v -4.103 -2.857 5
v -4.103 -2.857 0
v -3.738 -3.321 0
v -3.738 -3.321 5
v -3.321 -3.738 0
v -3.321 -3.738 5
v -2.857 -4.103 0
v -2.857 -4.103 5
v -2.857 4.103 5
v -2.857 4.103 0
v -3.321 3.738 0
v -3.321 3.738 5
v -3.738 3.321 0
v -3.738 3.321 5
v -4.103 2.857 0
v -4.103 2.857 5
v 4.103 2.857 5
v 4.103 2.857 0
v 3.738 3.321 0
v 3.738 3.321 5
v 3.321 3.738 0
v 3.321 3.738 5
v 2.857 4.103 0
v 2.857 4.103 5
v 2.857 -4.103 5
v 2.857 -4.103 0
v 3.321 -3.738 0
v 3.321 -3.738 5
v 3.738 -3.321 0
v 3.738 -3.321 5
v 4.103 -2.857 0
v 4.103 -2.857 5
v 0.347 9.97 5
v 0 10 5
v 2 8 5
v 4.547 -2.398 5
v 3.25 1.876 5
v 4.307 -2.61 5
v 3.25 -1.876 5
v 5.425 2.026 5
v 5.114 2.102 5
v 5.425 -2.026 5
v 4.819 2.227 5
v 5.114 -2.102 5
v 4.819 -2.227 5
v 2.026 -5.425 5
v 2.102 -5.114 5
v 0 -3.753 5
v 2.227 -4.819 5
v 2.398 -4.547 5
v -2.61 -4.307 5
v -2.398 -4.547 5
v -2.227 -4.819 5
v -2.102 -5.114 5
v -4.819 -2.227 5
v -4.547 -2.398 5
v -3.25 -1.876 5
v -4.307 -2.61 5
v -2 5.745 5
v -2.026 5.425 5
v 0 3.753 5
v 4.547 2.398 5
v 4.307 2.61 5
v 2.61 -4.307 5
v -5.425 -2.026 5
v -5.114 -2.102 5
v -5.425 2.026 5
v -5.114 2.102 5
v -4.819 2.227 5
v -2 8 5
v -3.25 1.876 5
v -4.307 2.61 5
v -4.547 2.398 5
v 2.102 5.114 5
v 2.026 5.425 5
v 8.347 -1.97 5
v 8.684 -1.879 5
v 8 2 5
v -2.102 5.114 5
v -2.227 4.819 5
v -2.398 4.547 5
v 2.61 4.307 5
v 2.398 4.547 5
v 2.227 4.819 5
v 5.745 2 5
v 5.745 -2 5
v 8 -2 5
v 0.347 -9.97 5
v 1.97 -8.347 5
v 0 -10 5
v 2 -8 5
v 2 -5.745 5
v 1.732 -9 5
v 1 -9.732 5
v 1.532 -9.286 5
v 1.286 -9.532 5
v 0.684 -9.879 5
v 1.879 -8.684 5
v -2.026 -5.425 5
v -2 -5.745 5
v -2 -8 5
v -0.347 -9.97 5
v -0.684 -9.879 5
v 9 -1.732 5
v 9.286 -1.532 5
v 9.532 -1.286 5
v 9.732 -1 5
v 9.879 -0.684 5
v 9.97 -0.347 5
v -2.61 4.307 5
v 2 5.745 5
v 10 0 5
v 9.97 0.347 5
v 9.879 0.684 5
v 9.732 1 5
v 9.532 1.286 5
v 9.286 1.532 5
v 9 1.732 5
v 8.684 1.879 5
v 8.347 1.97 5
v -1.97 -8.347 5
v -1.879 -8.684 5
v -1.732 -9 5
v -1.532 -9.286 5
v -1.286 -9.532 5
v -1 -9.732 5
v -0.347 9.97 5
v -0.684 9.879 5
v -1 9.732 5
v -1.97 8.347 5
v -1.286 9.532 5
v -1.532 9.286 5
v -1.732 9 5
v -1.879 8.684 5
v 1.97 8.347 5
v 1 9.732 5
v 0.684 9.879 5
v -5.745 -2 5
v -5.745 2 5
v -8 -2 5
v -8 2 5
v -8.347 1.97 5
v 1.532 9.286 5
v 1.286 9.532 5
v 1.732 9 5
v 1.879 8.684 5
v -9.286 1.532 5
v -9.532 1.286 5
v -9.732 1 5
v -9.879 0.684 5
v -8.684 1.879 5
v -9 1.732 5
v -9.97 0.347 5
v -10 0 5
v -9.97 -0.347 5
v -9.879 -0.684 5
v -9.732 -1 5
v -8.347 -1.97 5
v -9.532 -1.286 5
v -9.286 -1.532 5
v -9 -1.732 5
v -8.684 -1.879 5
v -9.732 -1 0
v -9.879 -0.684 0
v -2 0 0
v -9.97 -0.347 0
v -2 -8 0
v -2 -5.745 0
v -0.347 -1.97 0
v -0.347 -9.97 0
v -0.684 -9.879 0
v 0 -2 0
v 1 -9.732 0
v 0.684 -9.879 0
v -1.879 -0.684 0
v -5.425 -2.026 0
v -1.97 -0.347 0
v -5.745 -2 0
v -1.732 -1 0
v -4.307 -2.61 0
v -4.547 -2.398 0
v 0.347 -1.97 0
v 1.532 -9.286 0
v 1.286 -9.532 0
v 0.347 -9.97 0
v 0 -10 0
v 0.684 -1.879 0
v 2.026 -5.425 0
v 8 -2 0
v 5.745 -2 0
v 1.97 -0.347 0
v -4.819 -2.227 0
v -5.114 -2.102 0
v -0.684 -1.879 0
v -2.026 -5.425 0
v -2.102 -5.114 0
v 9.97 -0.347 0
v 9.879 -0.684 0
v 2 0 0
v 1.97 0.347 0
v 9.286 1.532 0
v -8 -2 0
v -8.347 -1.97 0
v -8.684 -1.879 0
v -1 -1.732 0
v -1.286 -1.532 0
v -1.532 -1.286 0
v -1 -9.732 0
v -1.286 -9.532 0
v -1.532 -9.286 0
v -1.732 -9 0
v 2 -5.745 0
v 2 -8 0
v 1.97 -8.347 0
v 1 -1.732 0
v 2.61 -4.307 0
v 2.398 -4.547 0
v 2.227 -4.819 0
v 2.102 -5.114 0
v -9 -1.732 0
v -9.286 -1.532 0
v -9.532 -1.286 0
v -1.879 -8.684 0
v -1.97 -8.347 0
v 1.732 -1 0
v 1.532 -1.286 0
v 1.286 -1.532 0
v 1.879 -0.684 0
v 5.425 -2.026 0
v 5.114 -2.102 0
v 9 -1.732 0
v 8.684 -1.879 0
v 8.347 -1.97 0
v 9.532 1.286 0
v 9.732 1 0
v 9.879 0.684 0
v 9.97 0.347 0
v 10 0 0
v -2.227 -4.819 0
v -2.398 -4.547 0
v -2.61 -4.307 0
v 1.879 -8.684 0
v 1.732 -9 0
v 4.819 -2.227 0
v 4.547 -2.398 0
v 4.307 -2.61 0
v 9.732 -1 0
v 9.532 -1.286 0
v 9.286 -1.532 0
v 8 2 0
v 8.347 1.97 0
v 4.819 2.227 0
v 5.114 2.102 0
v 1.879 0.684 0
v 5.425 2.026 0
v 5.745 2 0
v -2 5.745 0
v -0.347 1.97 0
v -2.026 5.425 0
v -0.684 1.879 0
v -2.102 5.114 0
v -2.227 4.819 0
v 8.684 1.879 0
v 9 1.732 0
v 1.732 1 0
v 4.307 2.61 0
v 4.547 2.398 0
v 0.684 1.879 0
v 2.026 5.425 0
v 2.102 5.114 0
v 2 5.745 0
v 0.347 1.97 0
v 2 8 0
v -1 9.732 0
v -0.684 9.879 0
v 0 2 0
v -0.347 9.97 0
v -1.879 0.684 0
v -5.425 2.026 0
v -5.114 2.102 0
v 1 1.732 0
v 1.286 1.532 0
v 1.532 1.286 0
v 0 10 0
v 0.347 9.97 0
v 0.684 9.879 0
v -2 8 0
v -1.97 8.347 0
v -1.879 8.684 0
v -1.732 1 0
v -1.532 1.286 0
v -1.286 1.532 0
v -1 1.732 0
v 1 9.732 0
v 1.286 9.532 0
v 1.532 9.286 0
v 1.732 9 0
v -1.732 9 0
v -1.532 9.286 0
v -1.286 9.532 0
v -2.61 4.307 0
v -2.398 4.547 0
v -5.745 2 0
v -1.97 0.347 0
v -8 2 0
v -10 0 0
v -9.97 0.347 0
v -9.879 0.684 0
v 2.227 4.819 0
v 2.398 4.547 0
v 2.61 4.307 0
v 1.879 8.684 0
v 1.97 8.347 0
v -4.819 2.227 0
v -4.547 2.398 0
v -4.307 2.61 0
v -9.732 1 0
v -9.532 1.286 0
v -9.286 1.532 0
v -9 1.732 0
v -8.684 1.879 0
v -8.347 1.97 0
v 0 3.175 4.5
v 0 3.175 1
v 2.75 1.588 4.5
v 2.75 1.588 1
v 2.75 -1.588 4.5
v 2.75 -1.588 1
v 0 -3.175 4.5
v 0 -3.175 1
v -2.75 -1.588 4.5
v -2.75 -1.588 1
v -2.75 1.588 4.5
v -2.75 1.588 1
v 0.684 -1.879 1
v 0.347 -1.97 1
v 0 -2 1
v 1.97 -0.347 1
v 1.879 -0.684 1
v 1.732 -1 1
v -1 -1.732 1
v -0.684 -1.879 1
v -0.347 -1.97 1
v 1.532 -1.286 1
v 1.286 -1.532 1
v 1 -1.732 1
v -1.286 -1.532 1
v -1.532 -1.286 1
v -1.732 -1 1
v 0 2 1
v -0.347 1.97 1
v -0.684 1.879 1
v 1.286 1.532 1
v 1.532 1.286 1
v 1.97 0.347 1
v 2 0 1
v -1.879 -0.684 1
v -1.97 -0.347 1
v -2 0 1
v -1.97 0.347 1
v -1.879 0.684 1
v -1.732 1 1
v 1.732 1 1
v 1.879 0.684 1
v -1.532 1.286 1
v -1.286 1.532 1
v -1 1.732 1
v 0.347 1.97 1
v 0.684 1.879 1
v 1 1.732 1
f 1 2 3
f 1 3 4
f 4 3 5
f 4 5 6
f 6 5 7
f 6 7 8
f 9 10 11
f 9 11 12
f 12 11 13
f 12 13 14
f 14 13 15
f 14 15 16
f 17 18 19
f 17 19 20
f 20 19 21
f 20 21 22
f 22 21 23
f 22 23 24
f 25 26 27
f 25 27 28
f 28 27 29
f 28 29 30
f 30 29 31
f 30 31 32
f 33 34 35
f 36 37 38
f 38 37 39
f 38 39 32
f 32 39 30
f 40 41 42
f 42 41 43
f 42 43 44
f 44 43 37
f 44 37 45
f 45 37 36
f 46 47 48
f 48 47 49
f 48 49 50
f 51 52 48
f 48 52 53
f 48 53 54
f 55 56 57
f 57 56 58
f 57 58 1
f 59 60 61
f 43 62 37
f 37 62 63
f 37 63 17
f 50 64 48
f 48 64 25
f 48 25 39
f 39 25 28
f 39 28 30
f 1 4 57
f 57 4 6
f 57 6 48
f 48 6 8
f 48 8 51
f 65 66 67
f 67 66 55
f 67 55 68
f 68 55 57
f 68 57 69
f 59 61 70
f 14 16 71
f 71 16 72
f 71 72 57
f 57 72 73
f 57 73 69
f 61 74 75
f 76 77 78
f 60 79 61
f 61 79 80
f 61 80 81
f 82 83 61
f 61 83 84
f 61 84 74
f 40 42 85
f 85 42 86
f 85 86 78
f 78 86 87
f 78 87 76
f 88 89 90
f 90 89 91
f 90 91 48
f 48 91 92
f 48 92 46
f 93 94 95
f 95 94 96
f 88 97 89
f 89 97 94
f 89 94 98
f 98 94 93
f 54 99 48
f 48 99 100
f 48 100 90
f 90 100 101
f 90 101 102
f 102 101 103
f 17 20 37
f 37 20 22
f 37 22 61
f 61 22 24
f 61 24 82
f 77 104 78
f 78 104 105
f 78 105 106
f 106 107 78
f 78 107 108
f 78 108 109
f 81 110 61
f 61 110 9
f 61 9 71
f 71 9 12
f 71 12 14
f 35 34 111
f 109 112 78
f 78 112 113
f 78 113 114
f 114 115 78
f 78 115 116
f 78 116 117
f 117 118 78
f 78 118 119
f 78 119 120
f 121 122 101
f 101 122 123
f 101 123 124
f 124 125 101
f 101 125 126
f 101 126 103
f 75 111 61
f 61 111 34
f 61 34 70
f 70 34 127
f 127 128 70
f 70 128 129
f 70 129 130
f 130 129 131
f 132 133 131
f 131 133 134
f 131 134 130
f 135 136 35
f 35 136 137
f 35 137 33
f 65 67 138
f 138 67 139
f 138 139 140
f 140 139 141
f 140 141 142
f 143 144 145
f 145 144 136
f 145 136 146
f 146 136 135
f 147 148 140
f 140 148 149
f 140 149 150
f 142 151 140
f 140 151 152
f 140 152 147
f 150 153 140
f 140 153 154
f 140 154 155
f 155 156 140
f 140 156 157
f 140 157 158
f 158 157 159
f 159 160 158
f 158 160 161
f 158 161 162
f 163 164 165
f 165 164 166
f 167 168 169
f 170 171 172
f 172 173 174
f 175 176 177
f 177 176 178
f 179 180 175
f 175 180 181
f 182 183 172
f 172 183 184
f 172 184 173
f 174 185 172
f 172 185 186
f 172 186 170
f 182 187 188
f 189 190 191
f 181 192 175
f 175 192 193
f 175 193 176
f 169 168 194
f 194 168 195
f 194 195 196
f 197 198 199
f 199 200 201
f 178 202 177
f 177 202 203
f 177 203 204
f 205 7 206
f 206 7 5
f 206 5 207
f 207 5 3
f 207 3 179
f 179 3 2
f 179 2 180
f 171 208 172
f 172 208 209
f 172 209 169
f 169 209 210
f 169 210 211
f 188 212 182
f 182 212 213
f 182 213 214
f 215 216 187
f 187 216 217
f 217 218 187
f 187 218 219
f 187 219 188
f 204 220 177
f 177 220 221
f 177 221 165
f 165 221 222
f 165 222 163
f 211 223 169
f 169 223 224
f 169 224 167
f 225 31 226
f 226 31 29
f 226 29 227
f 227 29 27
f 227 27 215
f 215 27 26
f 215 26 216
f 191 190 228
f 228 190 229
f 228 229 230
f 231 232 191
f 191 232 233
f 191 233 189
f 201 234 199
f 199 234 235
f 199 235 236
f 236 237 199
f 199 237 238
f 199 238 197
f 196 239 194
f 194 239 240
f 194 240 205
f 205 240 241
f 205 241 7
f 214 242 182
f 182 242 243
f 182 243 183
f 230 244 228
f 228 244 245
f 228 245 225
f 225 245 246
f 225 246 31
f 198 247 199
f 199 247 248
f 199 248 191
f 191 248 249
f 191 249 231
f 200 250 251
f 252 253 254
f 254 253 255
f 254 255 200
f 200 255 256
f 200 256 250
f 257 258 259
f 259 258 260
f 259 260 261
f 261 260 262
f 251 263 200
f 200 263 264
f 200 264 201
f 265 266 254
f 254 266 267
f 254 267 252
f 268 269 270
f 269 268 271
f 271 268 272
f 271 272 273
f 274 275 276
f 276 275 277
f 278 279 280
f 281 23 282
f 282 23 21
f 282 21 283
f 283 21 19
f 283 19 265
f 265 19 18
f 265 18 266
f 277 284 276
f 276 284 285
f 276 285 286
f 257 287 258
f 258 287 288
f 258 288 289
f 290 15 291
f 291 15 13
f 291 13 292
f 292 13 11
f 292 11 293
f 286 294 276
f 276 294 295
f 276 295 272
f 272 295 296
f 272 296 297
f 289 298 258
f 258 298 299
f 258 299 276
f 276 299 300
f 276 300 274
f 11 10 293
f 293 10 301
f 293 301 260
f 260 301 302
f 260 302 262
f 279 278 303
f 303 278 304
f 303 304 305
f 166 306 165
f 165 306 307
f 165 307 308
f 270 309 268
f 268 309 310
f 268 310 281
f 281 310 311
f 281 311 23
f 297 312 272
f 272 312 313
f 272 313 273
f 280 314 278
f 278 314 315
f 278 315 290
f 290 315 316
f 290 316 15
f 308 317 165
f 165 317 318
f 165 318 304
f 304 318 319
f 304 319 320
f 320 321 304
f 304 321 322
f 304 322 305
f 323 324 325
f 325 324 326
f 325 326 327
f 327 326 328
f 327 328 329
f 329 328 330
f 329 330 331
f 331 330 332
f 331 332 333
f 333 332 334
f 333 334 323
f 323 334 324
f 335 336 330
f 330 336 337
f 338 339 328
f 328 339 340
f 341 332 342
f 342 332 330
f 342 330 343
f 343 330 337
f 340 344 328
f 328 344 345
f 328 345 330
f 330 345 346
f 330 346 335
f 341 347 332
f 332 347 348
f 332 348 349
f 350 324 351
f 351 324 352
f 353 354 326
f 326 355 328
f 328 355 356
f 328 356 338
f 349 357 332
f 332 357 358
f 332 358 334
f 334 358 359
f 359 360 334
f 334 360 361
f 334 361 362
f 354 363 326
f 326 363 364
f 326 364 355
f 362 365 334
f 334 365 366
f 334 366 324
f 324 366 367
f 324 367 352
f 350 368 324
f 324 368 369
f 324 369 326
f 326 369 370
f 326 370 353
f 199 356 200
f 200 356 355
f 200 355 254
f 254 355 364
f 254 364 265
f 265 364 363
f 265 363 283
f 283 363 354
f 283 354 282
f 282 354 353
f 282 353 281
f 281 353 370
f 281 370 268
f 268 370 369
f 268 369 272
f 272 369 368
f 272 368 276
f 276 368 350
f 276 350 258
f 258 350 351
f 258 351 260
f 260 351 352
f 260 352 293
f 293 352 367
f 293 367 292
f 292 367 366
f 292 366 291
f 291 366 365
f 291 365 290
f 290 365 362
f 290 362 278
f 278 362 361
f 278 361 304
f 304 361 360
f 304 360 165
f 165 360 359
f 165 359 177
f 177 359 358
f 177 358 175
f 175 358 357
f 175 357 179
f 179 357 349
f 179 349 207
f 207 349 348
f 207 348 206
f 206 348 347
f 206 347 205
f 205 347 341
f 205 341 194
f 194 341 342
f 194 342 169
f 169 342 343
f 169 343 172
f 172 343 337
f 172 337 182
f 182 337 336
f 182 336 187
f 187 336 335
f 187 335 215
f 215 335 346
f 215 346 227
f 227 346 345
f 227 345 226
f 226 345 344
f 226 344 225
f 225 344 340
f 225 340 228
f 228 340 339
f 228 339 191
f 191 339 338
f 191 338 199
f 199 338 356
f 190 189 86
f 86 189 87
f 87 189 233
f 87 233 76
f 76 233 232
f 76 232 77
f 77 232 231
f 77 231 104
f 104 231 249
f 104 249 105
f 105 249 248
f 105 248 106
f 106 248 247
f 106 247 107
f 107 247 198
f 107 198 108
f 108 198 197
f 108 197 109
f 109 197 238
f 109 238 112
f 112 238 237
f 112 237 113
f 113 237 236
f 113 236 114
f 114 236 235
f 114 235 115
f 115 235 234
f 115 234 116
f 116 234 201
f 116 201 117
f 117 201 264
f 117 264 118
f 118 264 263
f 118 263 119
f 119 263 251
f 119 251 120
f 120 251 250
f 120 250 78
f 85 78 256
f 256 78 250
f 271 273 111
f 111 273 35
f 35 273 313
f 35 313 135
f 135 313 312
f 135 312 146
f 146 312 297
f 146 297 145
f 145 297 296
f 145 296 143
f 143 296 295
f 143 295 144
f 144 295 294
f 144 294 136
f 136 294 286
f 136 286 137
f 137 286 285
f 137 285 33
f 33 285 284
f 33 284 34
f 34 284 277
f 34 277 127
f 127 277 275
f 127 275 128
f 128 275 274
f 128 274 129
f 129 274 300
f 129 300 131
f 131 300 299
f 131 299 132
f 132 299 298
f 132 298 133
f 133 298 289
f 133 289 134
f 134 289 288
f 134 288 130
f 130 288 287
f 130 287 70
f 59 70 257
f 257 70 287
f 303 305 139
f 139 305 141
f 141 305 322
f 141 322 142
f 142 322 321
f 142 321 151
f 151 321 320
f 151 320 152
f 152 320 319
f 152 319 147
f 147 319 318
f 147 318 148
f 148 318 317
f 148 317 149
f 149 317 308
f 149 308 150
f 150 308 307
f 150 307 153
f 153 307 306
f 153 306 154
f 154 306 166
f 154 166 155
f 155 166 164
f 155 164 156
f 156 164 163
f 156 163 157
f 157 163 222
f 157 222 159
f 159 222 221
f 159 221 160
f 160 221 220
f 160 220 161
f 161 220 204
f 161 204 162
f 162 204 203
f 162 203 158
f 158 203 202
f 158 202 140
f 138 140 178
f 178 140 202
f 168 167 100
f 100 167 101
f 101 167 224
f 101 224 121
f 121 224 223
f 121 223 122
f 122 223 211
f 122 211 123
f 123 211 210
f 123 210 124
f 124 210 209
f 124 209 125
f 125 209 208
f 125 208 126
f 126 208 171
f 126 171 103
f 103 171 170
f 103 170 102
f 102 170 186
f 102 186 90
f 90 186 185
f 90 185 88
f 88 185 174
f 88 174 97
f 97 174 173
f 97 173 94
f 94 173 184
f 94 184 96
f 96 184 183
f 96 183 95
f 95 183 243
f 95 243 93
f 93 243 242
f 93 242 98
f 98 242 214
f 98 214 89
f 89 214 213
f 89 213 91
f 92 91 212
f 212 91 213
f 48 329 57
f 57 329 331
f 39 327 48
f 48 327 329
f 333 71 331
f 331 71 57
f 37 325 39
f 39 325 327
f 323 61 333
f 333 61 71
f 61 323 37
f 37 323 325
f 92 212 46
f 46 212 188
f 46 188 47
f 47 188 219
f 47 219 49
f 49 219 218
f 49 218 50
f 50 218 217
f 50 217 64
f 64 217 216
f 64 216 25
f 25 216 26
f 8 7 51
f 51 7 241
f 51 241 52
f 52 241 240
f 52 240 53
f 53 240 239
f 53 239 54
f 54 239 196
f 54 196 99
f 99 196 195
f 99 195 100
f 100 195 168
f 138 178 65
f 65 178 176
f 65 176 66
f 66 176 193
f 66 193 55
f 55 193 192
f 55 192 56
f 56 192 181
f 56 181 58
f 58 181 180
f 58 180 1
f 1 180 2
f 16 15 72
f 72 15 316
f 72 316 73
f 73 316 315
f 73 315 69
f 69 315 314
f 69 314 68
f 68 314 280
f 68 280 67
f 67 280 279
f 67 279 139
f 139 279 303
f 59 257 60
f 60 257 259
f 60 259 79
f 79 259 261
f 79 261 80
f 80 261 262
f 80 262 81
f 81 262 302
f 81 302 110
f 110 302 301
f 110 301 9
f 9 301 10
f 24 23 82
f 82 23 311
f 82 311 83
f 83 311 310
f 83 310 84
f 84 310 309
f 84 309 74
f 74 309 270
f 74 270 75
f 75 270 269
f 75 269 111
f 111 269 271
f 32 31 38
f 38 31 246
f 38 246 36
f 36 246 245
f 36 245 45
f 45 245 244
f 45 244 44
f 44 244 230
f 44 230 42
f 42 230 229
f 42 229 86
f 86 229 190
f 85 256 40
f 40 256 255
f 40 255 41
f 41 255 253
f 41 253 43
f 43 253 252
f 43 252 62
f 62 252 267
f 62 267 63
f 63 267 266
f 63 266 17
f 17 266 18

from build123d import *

# Parameters (mm, degrees)
ESBO_O1_R                = 5
RESSALTO_EXTRUS_O1_DEPTH = 5
CORTE_EXTRUS_O1_DEPTH    = 4
ESBO_O3_R                = 2
CORTE_EXTRUS_O2_DEPTH    = 9.124038405
RESSALTO_EXTRUS_O2_DEPTH = 5
CHANFRO1_SIZE            = 0.5
FILETE1_R                = 2


with BuildPart() as part:
    # Esboço1 → Ressalto-extrusão1 (new body)
    with BuildSketch(Plane.XY):
        Circle(ESBO_O1_R)
    extrude(amount=RESSALTO_EXTRUS_O1_DEPTH)

    # Esboço2 → Corte-extrusão1 (cut)
    with BuildSketch(Plane.XY.offset(5)):
        Polygon((0, 3.175426481), (-2.75, 1.58771324), (-2.75, -1.58771324), (0, -3.175426481), (2.75, -1.58771324), (2.75, 1.58771324), align=None)
    extrude(amount=-CORTE_EXTRUS_O1_DEPTH, mode=Mode.SUBTRACT)

    # Esboço3 → Corte-extrusão2 (cut, through all)
    with BuildSketch(Plane.XY.offset(1)):
        Circle(ESBO_O3_R)
    extrude(amount=-CORTE_EXTRUS_O2_DEPTH, mode=Mode.SUBTRACT)

    # Esboço4 → Ressalto-extrusão2 (add, through all)
    with BuildSketch(Plane(origin=(0, 0, 0), x_dir=(-1, 0, 0), z_dir=(0, 0, -1))):
        with BuildLine():
            Line((-4.582575695, 2), (-8, 2))
            ThreePointArc((-8, 2), (-10, 1.13e-07), (-8.000000226, -2))
            Line((-8.000000226, -2), (-4.582575695, -2))
            ThreePointArc((-4.582575695, -2), (-5, 0), (-4.582575695, 2))
        make_face()
        with BuildLine():
            Line((2, 4.582575695), (2, 8))
            ThreePointArc((2, 8), (1.13e-07, 10), (-2, 8.000000226))
            Line((-2, 8.000000226), (-2, 4.582575695))
            ThreePointArc((-2, 4.582575695), (0, 5), (2, 4.582575695))
        make_face()
        with BuildLine():
            Line((4.582575695, -2), (8, -2))
            ThreePointArc((8, -2), (10, -1.13e-07), (8.000000226, 2))
            Line((8.000000226, 2), (4.582575695, 2))
            ThreePointArc((4.582575695, 2), (5, 0), (4.582575695, -2))
        make_face()
        with BuildLine():
            Line((-2, -4.582575695), (-2, -8))
            ThreePointArc((-2, -8), (-1.13e-07, -10), (2, -8.000000226))
            Line((2, -8.000000226), (2, -4.582575695))
            ThreePointArc((2, -4.582575695), (0, -5), (-2, -4.582575695))
        make_face()
    extrude(amount=-RESSALTO_EXTRUS_O2_DEPTH)

    # Chanfro1
    chanfro1_edges = [part.edges().sort_by_distance(p)[0] for p in [
        (1.375, 2.38156986, 5),
        (-1.375, 2.38156986, 5),
        (-2.75, 0, 5),
        (-1.375, -2.38156986, 5),
        (1.375, -2.38156986, 5),
        (2.75, 0, 5),
    ]]
    chamfer(chanfro1_edges, length=CHANFRO1_SIZE)

    # Filete1
    filete1_edges = [part.edges().sort_by_distance(p)[0] for p in [
        (4.582575695, 2, 2.5),
        (4.582575695, -2, 2.5),
        (-2, 4.582575695, 2.5),
        (2, 4.582575695, 2.5),
        (-4.582575695, -2, 2.5),
        (-4.582575695, 2, 2.5),
        (2, -4.582575695, 2.5),
        (-2, -4.582575695, 2.5),
    ]]
    fillet(filete1_edges, radius=FILETE1_R)


solid = part.part
